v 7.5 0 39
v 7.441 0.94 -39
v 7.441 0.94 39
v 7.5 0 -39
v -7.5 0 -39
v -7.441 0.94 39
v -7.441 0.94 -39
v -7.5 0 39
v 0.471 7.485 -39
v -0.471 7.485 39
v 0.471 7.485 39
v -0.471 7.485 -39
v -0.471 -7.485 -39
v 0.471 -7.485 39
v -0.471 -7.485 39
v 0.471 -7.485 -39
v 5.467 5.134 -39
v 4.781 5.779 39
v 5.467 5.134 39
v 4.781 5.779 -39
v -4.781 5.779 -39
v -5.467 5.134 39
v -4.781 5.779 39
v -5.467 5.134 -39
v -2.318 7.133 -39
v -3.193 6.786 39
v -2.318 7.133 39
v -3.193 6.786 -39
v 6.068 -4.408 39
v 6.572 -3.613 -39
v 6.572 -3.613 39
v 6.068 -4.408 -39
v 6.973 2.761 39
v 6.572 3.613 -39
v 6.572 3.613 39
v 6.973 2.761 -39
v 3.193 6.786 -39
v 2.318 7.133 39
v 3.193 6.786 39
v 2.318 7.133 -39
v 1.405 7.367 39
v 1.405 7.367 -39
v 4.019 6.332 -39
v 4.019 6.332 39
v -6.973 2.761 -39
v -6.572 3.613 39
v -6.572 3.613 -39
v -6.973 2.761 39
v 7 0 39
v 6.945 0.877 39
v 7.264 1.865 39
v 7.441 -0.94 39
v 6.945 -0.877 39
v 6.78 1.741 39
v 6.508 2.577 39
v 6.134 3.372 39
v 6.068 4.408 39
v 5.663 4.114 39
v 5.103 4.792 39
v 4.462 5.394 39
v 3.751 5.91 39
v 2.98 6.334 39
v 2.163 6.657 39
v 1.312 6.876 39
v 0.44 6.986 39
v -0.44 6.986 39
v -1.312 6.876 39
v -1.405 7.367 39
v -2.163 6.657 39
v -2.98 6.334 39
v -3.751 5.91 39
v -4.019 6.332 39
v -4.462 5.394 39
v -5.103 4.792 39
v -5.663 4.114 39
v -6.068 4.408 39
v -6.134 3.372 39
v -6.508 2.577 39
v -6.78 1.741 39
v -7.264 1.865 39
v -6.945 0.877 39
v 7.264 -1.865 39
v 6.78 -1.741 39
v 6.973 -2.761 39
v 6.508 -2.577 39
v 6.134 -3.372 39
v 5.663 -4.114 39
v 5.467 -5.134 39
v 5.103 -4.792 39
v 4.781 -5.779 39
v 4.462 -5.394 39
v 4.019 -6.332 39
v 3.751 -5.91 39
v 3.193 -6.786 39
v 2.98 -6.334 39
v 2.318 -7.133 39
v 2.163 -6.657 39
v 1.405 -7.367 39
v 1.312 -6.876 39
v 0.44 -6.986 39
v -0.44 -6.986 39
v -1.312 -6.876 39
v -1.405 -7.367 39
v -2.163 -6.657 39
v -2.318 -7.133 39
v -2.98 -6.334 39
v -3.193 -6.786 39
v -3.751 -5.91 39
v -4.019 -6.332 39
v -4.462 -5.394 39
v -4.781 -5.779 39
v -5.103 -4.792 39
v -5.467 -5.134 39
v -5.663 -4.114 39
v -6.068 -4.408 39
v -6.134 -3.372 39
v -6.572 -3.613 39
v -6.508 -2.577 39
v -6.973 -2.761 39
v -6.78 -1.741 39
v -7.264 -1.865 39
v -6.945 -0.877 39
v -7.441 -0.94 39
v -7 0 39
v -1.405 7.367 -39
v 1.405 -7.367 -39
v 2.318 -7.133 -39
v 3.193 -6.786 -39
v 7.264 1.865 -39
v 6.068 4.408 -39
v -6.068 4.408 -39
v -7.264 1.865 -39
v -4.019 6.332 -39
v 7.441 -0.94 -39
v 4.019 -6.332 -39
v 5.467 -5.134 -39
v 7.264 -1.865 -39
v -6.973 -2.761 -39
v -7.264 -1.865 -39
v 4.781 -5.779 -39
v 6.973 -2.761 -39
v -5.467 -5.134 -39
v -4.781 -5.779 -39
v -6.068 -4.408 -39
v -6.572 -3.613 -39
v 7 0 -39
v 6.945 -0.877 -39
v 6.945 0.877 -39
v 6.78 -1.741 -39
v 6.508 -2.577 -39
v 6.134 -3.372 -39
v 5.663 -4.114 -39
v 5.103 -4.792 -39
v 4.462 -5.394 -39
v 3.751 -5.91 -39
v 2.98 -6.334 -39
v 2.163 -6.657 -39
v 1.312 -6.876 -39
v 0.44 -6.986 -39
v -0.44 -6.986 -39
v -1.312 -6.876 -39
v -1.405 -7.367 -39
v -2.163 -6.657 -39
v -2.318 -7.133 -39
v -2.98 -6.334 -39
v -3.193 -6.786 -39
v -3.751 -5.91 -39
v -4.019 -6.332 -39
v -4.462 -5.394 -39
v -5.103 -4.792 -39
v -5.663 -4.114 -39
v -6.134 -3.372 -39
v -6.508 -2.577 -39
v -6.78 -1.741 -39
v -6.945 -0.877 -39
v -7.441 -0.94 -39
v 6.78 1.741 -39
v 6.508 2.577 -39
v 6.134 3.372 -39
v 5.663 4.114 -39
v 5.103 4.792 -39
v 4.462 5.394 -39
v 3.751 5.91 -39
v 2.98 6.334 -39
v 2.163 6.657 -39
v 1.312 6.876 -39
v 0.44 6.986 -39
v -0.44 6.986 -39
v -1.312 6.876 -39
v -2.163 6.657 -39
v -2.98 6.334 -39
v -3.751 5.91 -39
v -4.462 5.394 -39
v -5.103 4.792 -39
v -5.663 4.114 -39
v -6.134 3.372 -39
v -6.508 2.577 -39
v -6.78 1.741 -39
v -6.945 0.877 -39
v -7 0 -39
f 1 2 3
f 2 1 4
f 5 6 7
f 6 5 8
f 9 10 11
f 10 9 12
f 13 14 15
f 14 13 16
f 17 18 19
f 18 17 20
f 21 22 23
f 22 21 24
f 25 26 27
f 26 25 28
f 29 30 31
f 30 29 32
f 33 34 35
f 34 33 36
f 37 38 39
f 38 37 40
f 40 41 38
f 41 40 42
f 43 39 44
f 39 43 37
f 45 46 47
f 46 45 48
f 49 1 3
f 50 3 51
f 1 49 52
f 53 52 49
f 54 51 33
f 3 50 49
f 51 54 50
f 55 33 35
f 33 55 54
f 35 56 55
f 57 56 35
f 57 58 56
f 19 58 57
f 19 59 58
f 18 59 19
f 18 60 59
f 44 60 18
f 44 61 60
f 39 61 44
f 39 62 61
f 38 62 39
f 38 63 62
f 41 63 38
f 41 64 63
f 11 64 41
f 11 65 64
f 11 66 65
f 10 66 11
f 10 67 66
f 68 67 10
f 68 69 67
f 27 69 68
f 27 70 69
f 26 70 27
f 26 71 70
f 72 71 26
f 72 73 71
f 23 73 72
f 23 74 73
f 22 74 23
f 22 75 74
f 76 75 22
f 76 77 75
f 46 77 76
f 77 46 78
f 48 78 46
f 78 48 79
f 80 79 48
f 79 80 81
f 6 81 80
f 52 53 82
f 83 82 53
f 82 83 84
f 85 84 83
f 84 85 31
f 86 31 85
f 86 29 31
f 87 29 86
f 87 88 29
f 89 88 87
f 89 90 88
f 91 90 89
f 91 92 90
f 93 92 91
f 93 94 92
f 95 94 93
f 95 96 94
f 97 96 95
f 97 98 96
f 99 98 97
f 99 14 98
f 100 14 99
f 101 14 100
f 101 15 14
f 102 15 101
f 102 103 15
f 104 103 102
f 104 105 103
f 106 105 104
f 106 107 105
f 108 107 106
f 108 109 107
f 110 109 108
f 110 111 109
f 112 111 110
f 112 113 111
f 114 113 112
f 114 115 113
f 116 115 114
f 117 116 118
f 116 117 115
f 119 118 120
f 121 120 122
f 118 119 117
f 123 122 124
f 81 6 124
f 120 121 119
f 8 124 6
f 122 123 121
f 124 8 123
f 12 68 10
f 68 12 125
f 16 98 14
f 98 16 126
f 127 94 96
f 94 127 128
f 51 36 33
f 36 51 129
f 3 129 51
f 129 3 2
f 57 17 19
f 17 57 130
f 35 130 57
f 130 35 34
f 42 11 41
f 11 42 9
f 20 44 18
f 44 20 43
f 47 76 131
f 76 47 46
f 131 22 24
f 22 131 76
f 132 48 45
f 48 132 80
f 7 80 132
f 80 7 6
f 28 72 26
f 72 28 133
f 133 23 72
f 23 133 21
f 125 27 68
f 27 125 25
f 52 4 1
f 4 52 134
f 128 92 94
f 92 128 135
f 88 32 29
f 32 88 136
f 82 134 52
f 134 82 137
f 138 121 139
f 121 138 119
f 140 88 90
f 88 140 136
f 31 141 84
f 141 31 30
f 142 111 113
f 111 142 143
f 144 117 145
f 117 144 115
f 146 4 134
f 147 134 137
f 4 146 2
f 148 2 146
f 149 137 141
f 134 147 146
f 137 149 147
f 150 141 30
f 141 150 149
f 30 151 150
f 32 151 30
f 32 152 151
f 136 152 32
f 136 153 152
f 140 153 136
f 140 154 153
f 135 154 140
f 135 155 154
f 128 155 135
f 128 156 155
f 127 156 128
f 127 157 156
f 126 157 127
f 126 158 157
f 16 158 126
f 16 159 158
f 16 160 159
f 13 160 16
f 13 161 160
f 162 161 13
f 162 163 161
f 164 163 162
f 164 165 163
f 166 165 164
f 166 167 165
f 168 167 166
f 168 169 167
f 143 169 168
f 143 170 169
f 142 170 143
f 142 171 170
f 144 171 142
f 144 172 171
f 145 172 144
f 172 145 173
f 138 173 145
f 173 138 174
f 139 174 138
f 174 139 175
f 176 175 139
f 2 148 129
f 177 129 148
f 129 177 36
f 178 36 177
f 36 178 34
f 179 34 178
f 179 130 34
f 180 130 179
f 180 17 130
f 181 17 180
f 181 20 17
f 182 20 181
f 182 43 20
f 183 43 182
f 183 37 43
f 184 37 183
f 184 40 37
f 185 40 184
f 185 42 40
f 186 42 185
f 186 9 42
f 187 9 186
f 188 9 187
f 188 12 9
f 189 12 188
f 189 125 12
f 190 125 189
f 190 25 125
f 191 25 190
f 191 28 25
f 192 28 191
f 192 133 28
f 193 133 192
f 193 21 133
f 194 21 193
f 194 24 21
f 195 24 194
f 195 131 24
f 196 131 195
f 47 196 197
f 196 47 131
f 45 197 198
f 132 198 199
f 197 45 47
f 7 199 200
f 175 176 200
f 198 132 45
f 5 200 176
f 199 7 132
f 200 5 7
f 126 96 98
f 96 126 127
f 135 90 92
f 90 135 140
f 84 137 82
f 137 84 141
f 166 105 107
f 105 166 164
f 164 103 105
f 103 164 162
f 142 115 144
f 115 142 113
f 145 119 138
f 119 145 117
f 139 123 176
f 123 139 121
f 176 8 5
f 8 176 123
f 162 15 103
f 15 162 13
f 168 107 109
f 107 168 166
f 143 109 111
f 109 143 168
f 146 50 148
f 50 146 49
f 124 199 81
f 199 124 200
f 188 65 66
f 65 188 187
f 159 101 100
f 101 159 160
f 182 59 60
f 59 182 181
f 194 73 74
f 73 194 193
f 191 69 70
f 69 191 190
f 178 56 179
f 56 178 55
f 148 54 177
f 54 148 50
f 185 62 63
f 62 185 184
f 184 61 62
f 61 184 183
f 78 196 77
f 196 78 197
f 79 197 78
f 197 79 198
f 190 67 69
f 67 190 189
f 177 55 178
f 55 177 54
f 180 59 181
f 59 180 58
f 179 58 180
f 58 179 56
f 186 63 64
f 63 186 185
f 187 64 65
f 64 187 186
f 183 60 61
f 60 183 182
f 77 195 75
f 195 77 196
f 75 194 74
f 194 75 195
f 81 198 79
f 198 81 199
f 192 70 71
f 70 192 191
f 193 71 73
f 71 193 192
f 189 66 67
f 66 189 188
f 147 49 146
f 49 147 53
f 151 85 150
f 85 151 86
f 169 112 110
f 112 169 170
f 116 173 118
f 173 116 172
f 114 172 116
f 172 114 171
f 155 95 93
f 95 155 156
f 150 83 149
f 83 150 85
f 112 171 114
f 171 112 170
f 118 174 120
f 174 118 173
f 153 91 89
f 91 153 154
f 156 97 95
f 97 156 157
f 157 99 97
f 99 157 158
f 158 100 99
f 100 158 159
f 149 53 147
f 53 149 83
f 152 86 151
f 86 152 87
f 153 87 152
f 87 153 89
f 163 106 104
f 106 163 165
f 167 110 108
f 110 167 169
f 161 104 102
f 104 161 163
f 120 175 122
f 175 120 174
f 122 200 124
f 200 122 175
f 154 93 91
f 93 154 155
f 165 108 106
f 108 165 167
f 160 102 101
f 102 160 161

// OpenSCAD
$fn = 50;


difference() {
	union() {
		translate(v = [0, 0, -39.0000000000]) {
			cylinder(h = 78, r = 7.5000000000);
		}
	}
	union() {
		translate(v = [0, 0, -100.0000000000]) {
			cylinder(h = 200, r = 7);
		}
	}
}
